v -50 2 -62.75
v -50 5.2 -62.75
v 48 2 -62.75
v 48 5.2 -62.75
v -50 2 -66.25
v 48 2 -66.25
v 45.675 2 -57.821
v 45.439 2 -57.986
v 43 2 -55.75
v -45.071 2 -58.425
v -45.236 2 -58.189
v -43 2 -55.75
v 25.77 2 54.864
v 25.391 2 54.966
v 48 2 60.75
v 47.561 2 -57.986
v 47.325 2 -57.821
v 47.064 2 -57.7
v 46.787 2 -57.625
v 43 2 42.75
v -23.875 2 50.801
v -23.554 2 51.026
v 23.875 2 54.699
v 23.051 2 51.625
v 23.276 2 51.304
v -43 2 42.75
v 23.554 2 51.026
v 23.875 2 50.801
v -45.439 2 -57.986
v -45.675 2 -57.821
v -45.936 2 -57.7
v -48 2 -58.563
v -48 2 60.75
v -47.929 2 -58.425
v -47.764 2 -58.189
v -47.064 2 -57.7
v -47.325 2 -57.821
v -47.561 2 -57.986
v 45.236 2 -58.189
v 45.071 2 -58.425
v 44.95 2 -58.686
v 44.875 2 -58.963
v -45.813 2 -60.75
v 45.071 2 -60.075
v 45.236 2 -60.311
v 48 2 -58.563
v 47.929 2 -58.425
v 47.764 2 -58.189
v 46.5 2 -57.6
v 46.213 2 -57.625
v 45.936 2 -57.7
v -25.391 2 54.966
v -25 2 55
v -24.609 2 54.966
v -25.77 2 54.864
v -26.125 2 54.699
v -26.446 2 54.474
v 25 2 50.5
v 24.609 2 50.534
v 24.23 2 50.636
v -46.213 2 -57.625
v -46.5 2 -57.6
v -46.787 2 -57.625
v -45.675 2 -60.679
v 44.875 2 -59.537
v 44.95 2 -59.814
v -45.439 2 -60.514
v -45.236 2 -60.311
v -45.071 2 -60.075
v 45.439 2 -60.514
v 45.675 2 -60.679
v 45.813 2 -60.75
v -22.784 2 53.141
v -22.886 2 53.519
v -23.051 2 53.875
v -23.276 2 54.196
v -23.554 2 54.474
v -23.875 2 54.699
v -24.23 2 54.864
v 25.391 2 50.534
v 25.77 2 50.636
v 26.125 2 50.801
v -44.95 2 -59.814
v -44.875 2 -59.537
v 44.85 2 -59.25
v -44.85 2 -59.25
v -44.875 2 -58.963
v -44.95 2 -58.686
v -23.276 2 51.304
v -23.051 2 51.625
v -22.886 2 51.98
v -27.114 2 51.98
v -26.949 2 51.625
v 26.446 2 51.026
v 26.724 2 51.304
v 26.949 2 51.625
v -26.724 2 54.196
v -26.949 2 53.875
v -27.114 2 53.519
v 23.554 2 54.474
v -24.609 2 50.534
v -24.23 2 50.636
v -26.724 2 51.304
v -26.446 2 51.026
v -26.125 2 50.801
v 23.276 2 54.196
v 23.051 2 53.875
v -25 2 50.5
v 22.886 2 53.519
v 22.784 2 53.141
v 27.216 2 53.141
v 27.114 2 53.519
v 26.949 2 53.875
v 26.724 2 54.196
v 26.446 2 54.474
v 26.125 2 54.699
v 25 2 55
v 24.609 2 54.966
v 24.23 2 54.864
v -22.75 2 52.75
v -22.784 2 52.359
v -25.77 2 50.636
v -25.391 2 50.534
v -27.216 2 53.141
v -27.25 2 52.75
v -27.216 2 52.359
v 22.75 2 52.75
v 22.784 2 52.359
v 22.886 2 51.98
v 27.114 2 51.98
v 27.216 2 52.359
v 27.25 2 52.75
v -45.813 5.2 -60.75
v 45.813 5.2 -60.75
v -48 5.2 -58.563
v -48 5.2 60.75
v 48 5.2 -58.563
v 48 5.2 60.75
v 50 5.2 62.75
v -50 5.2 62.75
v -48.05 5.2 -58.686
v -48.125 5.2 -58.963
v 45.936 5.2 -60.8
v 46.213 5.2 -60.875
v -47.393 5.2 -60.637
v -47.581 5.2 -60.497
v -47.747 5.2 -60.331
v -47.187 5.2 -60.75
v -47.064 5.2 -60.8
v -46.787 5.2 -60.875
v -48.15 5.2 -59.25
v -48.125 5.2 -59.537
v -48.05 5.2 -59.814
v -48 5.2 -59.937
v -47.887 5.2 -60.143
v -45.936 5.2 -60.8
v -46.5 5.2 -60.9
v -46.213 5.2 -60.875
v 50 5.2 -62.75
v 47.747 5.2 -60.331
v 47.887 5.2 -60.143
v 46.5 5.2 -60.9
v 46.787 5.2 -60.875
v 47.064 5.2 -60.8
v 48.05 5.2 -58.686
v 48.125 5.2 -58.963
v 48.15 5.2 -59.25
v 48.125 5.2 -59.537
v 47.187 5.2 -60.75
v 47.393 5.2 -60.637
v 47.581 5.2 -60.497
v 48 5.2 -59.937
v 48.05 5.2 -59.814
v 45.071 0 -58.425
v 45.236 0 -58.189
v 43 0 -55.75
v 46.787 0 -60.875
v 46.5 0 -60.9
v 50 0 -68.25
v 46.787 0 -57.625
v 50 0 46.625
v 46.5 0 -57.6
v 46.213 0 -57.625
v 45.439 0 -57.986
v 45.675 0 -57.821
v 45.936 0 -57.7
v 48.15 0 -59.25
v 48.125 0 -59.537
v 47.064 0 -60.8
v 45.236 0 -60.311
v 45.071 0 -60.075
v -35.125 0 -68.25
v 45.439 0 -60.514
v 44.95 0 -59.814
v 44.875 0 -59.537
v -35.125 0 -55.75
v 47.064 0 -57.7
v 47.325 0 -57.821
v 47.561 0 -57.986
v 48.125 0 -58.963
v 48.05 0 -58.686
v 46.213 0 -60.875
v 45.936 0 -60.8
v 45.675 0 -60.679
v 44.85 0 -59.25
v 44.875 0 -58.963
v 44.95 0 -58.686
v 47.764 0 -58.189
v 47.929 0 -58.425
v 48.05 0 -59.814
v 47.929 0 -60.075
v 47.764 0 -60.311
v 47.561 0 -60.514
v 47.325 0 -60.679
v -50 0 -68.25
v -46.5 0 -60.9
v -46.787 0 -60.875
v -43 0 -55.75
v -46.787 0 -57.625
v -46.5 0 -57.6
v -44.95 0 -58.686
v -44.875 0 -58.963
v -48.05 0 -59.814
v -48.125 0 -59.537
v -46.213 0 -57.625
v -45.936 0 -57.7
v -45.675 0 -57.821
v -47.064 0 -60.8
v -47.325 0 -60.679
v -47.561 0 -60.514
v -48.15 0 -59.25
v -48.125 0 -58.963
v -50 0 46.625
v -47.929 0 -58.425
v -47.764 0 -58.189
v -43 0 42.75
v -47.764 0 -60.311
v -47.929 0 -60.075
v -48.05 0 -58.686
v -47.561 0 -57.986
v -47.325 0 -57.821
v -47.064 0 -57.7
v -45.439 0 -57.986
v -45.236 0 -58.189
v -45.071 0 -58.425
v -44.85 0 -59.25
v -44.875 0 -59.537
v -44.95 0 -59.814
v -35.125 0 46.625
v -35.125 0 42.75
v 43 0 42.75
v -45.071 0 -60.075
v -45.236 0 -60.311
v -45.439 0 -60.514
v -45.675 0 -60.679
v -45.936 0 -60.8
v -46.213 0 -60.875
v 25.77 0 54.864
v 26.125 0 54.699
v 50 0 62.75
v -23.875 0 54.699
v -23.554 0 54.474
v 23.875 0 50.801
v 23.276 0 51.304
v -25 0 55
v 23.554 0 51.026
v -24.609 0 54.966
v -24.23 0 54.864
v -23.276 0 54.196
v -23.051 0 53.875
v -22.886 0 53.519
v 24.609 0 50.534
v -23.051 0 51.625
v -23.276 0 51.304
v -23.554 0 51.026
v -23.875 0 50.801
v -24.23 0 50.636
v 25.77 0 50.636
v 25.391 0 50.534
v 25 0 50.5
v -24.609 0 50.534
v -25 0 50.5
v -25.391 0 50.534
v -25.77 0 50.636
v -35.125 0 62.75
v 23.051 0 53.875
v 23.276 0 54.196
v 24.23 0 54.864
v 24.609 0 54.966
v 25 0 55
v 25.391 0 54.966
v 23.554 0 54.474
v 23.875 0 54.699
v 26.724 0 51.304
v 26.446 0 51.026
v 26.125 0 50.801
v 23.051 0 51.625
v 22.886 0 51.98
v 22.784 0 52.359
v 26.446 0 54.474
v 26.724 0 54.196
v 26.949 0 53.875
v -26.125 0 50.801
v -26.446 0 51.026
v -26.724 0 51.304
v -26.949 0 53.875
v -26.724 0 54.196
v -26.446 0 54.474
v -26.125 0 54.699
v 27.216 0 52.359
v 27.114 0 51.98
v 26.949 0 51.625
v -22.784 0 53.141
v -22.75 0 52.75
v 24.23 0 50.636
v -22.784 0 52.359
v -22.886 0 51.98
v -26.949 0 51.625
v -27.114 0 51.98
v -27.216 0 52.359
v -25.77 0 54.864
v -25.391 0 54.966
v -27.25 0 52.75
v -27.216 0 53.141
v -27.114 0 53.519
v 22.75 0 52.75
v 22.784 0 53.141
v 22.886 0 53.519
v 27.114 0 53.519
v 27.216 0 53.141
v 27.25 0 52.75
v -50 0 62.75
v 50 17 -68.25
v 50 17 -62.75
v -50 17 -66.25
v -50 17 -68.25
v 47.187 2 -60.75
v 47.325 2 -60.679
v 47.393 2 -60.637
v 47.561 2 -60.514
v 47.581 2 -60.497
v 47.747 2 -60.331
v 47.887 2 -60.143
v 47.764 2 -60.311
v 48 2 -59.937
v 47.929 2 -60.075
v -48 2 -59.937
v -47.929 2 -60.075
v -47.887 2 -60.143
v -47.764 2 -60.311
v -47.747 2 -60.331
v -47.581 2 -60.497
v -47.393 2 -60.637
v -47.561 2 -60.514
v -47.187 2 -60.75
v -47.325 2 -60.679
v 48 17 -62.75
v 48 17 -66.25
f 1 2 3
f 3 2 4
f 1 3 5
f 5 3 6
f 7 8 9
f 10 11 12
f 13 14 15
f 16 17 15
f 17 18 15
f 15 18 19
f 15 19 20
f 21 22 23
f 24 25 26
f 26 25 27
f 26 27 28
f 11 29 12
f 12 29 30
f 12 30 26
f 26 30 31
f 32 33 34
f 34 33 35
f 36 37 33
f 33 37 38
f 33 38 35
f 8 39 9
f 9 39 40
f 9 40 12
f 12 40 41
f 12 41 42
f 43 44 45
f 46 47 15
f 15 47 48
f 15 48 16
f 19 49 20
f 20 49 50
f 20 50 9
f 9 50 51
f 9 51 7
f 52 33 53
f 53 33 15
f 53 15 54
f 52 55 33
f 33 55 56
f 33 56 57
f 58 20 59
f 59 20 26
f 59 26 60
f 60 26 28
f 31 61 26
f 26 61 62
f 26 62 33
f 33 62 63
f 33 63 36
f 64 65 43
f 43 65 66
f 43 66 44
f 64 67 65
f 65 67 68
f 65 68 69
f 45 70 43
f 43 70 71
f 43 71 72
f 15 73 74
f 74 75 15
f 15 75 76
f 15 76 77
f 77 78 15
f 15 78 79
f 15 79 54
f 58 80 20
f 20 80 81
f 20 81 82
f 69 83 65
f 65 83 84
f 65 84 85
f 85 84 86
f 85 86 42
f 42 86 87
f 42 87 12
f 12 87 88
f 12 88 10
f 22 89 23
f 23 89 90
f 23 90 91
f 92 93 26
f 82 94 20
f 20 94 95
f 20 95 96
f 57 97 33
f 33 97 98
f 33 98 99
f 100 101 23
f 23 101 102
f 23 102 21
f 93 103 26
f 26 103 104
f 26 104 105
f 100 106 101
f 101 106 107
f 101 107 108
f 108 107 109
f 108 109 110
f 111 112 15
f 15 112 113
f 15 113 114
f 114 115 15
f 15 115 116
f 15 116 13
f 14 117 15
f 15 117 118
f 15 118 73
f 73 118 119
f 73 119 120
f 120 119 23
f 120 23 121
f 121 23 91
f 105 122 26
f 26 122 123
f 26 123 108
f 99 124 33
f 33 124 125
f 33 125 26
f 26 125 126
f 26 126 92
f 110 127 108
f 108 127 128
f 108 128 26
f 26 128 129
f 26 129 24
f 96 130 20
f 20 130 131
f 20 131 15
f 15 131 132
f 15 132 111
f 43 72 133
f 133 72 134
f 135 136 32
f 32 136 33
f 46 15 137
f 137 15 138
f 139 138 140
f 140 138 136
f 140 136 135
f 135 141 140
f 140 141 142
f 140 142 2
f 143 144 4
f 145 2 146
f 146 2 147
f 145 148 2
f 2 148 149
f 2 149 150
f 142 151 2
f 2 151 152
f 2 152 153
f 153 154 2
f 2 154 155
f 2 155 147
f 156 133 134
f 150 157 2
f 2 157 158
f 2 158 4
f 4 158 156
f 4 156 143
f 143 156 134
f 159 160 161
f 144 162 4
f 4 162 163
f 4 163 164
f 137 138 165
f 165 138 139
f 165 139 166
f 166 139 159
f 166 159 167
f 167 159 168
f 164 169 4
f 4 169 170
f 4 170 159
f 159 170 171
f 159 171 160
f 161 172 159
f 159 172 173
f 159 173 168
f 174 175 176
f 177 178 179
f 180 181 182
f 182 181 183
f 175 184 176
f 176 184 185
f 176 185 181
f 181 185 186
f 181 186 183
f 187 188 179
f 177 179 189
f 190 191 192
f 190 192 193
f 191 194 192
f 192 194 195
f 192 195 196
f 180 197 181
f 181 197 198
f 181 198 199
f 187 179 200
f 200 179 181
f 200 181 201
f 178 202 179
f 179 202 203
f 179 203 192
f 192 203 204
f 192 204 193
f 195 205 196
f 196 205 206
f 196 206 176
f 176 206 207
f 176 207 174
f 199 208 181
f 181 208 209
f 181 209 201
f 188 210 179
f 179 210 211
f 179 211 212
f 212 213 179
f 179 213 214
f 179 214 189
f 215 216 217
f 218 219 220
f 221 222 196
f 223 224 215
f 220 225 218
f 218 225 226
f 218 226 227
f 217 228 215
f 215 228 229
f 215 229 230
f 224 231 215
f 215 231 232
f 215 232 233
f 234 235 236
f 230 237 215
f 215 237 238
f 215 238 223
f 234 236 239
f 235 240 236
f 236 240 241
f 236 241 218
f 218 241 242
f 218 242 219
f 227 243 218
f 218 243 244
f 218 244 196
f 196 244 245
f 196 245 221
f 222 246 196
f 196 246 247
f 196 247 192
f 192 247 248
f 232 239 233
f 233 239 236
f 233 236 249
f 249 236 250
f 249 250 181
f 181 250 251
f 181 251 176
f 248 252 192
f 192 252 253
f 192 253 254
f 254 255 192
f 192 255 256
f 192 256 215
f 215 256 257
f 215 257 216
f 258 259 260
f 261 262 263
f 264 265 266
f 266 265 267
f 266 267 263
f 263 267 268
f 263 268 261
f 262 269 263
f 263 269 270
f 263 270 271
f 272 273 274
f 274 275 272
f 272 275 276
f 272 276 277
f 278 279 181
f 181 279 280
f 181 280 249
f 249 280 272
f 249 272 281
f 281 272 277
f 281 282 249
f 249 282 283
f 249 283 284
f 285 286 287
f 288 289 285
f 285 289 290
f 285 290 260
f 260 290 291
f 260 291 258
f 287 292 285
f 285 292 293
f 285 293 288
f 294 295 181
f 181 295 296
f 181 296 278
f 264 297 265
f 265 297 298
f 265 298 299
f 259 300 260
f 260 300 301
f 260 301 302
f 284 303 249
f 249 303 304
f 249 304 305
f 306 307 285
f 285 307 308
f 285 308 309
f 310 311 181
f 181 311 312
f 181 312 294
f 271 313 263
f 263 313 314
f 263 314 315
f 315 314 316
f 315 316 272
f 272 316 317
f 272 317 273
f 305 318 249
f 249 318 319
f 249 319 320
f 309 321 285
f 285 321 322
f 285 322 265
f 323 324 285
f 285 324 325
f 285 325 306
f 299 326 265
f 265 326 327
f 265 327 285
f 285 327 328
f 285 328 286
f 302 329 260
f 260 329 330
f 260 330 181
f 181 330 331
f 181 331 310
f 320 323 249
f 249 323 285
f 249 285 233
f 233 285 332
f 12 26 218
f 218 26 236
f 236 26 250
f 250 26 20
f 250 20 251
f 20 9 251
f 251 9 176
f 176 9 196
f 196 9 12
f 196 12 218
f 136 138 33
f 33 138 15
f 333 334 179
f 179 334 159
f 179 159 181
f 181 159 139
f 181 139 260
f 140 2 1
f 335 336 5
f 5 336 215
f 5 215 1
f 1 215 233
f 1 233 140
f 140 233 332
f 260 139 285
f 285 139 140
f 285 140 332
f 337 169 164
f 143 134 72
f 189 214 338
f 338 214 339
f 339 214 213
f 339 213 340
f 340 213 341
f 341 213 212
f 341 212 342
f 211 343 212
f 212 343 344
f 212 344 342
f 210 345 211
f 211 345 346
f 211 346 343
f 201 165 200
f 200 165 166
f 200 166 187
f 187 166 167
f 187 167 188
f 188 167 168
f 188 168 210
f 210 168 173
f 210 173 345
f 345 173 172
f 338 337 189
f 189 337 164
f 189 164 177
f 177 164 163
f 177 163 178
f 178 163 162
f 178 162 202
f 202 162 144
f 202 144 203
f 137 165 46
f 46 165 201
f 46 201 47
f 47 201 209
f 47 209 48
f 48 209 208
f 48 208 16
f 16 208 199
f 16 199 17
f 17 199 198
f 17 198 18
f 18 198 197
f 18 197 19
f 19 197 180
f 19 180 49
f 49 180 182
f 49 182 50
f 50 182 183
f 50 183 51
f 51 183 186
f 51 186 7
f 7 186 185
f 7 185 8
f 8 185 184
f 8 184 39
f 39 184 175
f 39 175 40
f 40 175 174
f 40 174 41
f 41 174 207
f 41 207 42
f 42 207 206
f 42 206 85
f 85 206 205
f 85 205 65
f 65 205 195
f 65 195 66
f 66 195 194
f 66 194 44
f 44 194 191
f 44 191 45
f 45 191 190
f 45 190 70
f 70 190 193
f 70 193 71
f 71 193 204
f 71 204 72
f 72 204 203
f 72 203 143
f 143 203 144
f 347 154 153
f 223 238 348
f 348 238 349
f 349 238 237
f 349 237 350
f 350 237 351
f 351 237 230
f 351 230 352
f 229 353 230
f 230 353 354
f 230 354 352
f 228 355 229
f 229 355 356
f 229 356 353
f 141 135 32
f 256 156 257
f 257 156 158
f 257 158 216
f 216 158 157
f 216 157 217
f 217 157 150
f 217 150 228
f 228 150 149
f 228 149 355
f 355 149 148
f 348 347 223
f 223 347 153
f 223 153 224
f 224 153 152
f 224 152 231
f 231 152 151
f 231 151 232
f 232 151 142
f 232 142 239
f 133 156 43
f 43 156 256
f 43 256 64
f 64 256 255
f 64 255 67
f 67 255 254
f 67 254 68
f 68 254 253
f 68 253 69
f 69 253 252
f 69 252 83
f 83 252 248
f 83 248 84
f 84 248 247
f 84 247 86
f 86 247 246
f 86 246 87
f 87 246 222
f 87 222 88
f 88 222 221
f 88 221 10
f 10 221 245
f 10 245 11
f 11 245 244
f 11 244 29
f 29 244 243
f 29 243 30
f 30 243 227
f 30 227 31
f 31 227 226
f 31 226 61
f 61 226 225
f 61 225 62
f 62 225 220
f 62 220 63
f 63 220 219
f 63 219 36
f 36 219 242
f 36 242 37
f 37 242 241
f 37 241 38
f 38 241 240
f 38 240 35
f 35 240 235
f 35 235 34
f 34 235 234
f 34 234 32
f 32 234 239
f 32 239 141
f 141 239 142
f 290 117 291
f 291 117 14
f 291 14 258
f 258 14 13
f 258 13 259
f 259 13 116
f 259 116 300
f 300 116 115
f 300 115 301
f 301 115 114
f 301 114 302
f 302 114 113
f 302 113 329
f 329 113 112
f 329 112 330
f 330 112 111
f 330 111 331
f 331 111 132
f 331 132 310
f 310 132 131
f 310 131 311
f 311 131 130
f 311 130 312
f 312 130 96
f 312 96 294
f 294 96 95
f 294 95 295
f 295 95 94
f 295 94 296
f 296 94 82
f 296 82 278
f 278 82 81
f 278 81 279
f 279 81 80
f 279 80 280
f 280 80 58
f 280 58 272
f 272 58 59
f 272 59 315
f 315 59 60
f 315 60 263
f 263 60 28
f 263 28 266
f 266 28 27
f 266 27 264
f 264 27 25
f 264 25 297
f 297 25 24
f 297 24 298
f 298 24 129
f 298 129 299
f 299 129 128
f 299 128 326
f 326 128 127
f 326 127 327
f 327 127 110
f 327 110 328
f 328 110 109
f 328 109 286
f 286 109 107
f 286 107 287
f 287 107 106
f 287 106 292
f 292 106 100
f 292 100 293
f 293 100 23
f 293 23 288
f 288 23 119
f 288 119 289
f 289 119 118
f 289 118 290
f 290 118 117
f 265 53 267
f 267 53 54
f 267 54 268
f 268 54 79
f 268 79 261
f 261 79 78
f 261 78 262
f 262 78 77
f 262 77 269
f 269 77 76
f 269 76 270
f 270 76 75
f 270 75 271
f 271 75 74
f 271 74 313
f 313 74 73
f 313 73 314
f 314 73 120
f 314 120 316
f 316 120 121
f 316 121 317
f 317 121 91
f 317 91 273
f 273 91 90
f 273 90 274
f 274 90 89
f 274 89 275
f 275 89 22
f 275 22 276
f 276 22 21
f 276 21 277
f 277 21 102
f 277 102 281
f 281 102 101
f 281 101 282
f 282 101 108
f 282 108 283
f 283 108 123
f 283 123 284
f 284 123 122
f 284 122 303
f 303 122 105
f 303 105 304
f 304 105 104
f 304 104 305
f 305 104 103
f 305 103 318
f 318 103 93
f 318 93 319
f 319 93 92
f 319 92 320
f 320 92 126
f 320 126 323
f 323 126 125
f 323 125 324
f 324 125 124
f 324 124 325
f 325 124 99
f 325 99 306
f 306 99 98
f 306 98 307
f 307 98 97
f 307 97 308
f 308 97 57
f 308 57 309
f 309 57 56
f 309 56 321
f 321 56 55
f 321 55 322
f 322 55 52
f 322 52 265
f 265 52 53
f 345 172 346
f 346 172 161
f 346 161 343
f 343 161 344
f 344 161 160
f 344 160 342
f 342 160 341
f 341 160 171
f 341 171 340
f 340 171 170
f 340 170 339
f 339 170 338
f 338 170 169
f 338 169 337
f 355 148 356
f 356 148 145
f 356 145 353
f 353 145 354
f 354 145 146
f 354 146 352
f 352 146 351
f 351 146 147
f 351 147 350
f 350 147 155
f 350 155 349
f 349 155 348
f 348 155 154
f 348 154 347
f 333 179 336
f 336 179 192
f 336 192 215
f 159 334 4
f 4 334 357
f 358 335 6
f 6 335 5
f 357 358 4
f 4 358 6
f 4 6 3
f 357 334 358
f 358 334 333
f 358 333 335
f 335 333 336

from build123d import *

# Parameters (mm, degrees)
SKETCH1_W                      = 96
SKETCH1_H                      = 121.5
SKETCH1_W_2                    = 86
SKETCH1_H_2                    = 98.5
BOSS_EXTRUDE1_DEPTH            = 2
SKETCH2_W                      = 100
SKETCH2_H                      = 125.5
SKETCH2_W_2                    = 96
SKETCH2_H_2                    = 121.5
BOSS_EXTRUDE2_DEPTH            = 5.2
CUT_EXTRUDE1_REACH             = 82.403
SKETCH3_R                      = 2.25
SKETCH3_R_2                    = 1.65
CUT_EXTRUDE1_DIRECTION_2_DEPTH = 81.402751819
FILLET1_R                      = 1.65
SKETCH4_W                      = 100
SKETCH4_H                      = 5.5
BOSS_EXTRUDE3_DEPTH            = 2
BOSS_EXTRUDE5_DEPTH            = 15


with BuildPart() as part:
    # Sketch1 → Boss-Extrude1 (new body)
    with BuildSketch(Plane(origin=(0, 0, 0), x_dir=(1, 0, 0), z_dir=(0, 1, 0))):
        Rectangle(SKETCH1_W, SKETCH1_H)
        with Locations((0, 6.5)):
            Rectangle(SKETCH1_W_2, SKETCH1_H_2, mode=Mode.SUBTRACT)
    extrude(amount=BOSS_EXTRUDE1_DEPTH)

    # Sketch2 → Boss-Extrude2 (add)
    with BuildSketch(Plane(origin=(0, 0, 0), x_dir=(1, 0, 0), z_dir=(0, 1, 0))):
        Rectangle(SKETCH2_W, SKETCH2_H)
        Rectangle(SKETCH2_W_2, SKETCH2_H_2, mode=Mode.SUBTRACT)
    extrude(amount=BOSS_EXTRUDE2_DEPTH)

    # Sketch3 → Cut-Extrude1 (cut, up to next)
    with BuildSketch(Plane.XZ, mode=Mode.PRIVATE) as cut_extrude1_sk1:
        with Locations(Location((25, 52.75, 0), (0, 0, 90))):
            Circle(SKETCH3_R)
    cut_extrude1_tool1 = extrude(cut_extrude1_sk1.sketch, amount=-CUT_EXTRUDE1_REACH, mode=Mode.PRIVATE) & part.part
    # Sketch3 → Cut-Extrude1 (cut, up to next)
    with BuildSketch(Plane.XZ, mode=Mode.PRIVATE) as cut_extrude1_sk2:
        with Locations(Location((-25, 52.75, 0), (0, 0, 90))):
            Circle(SKETCH3_R)
    cut_extrude1_tool2 = extrude(cut_extrude1_sk2.sketch, amount=-CUT_EXTRUDE1_REACH, mode=Mode.PRIVATE) & part.part
    # Sketch3 → Cut-Extrude1 (cut, up to next)
    with BuildSketch(Plane.XZ, mode=Mode.PRIVATE) as cut_extrude1_sk3:
        with Locations(Location((46.5, -59.25, 0), (0, 0, 24.619977329))):
            Circle(SKETCH3_R_2)
    cut_extrude1_tool3 = extrude(cut_extrude1_sk3.sketch, amount=-CUT_EXTRUDE1_REACH, mode=Mode.PRIVATE) & part.part
    # Sketch3 → Cut-Extrude1 (cut, up to next)
    with BuildSketch(Plane.XZ, mode=Mode.PRIVATE) as cut_extrude1_sk4:
        with Locations(Location((-46.5, -59.25, 0), (0, 0, 155.380022671))):
            Circle(SKETCH3_R_2)
    cut_extrude1_tool4 = extrude(cut_extrude1_sk4.sketch, amount=-CUT_EXTRUDE1_REACH, mode=Mode.PRIVATE) & part.part
    add(cut_extrude1_tool1.solids().sort_by_distance((25, 0, 52.75))[0], mode=Mode.SUBTRACT)
    add(cut_extrude1_tool2.solids().sort_by_distance((-25, 0, 52.75))[0], mode=Mode.SUBTRACT)
    add(cut_extrude1_tool3.solids().sort_by_distance((46.5, 0, -59.25))[0], mode=Mode.SUBTRACT)
    add(cut_extrude1_tool4.solids().sort_by_distance((-46.5, 0, -59.25))[0], mode=Mode.SUBTRACT)

    # Sketch3 → Cut-Extrude1 direction 2 (cut)
    with BuildSketch(Plane.XZ):
        with Locations(Location((25, 52.75, 0), (0, 0, 90))):
            Circle(SKETCH3_R)
        with Locations(Location((-25, 52.75, 0), (0, 0, 90))):
            Circle(SKETCH3_R)
        with Locations(Location((46.5, -59.25, 0), (0, 0, 24.619977329))):
            Circle(SKETCH3_R_2)
        with Locations(Location((-46.5, -59.25, 0), (0, 0, 155.380022671))):
            Circle(SKETCH3_R_2)
    extrude(amount=CUT_EXTRUDE1_DIRECTION_2_DEPTH, mode=Mode.SUBTRACT)

    # Fillet1
    # the kernel refuses this fillet: 1.65 mm, written as the material it adds along each edge
    with BuildSketch(Plane(origin=(48, 2, -60.75), x_dir=(0, 0, 1), z_dir=(0, 1, 0))) as fillet1_piece_1_section:
        with BuildLine():
            CenterArc((FILLET1_R, -FILLET1_R), FILLET1_R, 90, 90)
            Line((0, -FILLET1_R), (0, 0))
            Line((0, 0), (FILLET1_R, 0))
        make_face()
    fillet1_piece_1 = extrude(amount=3.2, mode=Mode.PRIVATE)
    fillet1_piece_1 = fillet1_piece_1 - Plane(origin=(46.5, 3.6, -59.25), x_dir=(0.9090909090884159, 0, 0.4165977904559716), z_dir=(0, -1, 0)) * Cylinder(1.65, 13, mode=Mode.PRIVATE)
    add(fillet1_piece_1)
    with BuildSketch(Plane(origin=(-48, 2, -60.75), x_dir=(1, 0, 0), z_dir=(0, 1, 0))) as fillet1_piece_2_section:
        with BuildLine():
            CenterArc((FILLET1_R, -FILLET1_R), FILLET1_R, 90, 90)
            Line((0, -FILLET1_R), (0, 0))
            Line((0, 0), (FILLET1_R, 0))
        make_face()
    fillet1_piece_2 = extrude(amount=3.2, mode=Mode.PRIVATE)
    fillet1_piece_2 = fillet1_piece_2 - Plane(origin=(-46.5, 3.6, -59.25), x_dir=(-0.9090909090884159, 0, 0.4165977904559715), z_dir=(0, -1, 0)) * Cylinder(1.65, 14, mode=Mode.PRIVATE)
    add(fillet1_piece_2)

    # Sketch4 → Boss-Extrude3 (add)
    with BuildSketch(Plane(origin=(0, 0, 0), x_dir=(1, 0, 0), z_dir=(0, 1, 0))):
        with Locations((0, 65.5)):
            Rectangle(SKETCH4_W, SKETCH4_H)
    extrude(amount=BOSS_EXTRUDE3_DEPTH)

    # Sketch7 → Boss-Extrude5 (add)
    with BuildSketch(Plane(origin=(0, 2, 0), x_dir=(1, 0, 0), z_dir=(0, 1, 0))):
        Polygon((-50, 68.25), (50, 68.25), (50, 62.75), (48, 62.75), (48, 66.25), (-50, 66.25), align=None)
    extrude(amount=BOSS_EXTRUDE5_DEPTH)


solid = part.part
